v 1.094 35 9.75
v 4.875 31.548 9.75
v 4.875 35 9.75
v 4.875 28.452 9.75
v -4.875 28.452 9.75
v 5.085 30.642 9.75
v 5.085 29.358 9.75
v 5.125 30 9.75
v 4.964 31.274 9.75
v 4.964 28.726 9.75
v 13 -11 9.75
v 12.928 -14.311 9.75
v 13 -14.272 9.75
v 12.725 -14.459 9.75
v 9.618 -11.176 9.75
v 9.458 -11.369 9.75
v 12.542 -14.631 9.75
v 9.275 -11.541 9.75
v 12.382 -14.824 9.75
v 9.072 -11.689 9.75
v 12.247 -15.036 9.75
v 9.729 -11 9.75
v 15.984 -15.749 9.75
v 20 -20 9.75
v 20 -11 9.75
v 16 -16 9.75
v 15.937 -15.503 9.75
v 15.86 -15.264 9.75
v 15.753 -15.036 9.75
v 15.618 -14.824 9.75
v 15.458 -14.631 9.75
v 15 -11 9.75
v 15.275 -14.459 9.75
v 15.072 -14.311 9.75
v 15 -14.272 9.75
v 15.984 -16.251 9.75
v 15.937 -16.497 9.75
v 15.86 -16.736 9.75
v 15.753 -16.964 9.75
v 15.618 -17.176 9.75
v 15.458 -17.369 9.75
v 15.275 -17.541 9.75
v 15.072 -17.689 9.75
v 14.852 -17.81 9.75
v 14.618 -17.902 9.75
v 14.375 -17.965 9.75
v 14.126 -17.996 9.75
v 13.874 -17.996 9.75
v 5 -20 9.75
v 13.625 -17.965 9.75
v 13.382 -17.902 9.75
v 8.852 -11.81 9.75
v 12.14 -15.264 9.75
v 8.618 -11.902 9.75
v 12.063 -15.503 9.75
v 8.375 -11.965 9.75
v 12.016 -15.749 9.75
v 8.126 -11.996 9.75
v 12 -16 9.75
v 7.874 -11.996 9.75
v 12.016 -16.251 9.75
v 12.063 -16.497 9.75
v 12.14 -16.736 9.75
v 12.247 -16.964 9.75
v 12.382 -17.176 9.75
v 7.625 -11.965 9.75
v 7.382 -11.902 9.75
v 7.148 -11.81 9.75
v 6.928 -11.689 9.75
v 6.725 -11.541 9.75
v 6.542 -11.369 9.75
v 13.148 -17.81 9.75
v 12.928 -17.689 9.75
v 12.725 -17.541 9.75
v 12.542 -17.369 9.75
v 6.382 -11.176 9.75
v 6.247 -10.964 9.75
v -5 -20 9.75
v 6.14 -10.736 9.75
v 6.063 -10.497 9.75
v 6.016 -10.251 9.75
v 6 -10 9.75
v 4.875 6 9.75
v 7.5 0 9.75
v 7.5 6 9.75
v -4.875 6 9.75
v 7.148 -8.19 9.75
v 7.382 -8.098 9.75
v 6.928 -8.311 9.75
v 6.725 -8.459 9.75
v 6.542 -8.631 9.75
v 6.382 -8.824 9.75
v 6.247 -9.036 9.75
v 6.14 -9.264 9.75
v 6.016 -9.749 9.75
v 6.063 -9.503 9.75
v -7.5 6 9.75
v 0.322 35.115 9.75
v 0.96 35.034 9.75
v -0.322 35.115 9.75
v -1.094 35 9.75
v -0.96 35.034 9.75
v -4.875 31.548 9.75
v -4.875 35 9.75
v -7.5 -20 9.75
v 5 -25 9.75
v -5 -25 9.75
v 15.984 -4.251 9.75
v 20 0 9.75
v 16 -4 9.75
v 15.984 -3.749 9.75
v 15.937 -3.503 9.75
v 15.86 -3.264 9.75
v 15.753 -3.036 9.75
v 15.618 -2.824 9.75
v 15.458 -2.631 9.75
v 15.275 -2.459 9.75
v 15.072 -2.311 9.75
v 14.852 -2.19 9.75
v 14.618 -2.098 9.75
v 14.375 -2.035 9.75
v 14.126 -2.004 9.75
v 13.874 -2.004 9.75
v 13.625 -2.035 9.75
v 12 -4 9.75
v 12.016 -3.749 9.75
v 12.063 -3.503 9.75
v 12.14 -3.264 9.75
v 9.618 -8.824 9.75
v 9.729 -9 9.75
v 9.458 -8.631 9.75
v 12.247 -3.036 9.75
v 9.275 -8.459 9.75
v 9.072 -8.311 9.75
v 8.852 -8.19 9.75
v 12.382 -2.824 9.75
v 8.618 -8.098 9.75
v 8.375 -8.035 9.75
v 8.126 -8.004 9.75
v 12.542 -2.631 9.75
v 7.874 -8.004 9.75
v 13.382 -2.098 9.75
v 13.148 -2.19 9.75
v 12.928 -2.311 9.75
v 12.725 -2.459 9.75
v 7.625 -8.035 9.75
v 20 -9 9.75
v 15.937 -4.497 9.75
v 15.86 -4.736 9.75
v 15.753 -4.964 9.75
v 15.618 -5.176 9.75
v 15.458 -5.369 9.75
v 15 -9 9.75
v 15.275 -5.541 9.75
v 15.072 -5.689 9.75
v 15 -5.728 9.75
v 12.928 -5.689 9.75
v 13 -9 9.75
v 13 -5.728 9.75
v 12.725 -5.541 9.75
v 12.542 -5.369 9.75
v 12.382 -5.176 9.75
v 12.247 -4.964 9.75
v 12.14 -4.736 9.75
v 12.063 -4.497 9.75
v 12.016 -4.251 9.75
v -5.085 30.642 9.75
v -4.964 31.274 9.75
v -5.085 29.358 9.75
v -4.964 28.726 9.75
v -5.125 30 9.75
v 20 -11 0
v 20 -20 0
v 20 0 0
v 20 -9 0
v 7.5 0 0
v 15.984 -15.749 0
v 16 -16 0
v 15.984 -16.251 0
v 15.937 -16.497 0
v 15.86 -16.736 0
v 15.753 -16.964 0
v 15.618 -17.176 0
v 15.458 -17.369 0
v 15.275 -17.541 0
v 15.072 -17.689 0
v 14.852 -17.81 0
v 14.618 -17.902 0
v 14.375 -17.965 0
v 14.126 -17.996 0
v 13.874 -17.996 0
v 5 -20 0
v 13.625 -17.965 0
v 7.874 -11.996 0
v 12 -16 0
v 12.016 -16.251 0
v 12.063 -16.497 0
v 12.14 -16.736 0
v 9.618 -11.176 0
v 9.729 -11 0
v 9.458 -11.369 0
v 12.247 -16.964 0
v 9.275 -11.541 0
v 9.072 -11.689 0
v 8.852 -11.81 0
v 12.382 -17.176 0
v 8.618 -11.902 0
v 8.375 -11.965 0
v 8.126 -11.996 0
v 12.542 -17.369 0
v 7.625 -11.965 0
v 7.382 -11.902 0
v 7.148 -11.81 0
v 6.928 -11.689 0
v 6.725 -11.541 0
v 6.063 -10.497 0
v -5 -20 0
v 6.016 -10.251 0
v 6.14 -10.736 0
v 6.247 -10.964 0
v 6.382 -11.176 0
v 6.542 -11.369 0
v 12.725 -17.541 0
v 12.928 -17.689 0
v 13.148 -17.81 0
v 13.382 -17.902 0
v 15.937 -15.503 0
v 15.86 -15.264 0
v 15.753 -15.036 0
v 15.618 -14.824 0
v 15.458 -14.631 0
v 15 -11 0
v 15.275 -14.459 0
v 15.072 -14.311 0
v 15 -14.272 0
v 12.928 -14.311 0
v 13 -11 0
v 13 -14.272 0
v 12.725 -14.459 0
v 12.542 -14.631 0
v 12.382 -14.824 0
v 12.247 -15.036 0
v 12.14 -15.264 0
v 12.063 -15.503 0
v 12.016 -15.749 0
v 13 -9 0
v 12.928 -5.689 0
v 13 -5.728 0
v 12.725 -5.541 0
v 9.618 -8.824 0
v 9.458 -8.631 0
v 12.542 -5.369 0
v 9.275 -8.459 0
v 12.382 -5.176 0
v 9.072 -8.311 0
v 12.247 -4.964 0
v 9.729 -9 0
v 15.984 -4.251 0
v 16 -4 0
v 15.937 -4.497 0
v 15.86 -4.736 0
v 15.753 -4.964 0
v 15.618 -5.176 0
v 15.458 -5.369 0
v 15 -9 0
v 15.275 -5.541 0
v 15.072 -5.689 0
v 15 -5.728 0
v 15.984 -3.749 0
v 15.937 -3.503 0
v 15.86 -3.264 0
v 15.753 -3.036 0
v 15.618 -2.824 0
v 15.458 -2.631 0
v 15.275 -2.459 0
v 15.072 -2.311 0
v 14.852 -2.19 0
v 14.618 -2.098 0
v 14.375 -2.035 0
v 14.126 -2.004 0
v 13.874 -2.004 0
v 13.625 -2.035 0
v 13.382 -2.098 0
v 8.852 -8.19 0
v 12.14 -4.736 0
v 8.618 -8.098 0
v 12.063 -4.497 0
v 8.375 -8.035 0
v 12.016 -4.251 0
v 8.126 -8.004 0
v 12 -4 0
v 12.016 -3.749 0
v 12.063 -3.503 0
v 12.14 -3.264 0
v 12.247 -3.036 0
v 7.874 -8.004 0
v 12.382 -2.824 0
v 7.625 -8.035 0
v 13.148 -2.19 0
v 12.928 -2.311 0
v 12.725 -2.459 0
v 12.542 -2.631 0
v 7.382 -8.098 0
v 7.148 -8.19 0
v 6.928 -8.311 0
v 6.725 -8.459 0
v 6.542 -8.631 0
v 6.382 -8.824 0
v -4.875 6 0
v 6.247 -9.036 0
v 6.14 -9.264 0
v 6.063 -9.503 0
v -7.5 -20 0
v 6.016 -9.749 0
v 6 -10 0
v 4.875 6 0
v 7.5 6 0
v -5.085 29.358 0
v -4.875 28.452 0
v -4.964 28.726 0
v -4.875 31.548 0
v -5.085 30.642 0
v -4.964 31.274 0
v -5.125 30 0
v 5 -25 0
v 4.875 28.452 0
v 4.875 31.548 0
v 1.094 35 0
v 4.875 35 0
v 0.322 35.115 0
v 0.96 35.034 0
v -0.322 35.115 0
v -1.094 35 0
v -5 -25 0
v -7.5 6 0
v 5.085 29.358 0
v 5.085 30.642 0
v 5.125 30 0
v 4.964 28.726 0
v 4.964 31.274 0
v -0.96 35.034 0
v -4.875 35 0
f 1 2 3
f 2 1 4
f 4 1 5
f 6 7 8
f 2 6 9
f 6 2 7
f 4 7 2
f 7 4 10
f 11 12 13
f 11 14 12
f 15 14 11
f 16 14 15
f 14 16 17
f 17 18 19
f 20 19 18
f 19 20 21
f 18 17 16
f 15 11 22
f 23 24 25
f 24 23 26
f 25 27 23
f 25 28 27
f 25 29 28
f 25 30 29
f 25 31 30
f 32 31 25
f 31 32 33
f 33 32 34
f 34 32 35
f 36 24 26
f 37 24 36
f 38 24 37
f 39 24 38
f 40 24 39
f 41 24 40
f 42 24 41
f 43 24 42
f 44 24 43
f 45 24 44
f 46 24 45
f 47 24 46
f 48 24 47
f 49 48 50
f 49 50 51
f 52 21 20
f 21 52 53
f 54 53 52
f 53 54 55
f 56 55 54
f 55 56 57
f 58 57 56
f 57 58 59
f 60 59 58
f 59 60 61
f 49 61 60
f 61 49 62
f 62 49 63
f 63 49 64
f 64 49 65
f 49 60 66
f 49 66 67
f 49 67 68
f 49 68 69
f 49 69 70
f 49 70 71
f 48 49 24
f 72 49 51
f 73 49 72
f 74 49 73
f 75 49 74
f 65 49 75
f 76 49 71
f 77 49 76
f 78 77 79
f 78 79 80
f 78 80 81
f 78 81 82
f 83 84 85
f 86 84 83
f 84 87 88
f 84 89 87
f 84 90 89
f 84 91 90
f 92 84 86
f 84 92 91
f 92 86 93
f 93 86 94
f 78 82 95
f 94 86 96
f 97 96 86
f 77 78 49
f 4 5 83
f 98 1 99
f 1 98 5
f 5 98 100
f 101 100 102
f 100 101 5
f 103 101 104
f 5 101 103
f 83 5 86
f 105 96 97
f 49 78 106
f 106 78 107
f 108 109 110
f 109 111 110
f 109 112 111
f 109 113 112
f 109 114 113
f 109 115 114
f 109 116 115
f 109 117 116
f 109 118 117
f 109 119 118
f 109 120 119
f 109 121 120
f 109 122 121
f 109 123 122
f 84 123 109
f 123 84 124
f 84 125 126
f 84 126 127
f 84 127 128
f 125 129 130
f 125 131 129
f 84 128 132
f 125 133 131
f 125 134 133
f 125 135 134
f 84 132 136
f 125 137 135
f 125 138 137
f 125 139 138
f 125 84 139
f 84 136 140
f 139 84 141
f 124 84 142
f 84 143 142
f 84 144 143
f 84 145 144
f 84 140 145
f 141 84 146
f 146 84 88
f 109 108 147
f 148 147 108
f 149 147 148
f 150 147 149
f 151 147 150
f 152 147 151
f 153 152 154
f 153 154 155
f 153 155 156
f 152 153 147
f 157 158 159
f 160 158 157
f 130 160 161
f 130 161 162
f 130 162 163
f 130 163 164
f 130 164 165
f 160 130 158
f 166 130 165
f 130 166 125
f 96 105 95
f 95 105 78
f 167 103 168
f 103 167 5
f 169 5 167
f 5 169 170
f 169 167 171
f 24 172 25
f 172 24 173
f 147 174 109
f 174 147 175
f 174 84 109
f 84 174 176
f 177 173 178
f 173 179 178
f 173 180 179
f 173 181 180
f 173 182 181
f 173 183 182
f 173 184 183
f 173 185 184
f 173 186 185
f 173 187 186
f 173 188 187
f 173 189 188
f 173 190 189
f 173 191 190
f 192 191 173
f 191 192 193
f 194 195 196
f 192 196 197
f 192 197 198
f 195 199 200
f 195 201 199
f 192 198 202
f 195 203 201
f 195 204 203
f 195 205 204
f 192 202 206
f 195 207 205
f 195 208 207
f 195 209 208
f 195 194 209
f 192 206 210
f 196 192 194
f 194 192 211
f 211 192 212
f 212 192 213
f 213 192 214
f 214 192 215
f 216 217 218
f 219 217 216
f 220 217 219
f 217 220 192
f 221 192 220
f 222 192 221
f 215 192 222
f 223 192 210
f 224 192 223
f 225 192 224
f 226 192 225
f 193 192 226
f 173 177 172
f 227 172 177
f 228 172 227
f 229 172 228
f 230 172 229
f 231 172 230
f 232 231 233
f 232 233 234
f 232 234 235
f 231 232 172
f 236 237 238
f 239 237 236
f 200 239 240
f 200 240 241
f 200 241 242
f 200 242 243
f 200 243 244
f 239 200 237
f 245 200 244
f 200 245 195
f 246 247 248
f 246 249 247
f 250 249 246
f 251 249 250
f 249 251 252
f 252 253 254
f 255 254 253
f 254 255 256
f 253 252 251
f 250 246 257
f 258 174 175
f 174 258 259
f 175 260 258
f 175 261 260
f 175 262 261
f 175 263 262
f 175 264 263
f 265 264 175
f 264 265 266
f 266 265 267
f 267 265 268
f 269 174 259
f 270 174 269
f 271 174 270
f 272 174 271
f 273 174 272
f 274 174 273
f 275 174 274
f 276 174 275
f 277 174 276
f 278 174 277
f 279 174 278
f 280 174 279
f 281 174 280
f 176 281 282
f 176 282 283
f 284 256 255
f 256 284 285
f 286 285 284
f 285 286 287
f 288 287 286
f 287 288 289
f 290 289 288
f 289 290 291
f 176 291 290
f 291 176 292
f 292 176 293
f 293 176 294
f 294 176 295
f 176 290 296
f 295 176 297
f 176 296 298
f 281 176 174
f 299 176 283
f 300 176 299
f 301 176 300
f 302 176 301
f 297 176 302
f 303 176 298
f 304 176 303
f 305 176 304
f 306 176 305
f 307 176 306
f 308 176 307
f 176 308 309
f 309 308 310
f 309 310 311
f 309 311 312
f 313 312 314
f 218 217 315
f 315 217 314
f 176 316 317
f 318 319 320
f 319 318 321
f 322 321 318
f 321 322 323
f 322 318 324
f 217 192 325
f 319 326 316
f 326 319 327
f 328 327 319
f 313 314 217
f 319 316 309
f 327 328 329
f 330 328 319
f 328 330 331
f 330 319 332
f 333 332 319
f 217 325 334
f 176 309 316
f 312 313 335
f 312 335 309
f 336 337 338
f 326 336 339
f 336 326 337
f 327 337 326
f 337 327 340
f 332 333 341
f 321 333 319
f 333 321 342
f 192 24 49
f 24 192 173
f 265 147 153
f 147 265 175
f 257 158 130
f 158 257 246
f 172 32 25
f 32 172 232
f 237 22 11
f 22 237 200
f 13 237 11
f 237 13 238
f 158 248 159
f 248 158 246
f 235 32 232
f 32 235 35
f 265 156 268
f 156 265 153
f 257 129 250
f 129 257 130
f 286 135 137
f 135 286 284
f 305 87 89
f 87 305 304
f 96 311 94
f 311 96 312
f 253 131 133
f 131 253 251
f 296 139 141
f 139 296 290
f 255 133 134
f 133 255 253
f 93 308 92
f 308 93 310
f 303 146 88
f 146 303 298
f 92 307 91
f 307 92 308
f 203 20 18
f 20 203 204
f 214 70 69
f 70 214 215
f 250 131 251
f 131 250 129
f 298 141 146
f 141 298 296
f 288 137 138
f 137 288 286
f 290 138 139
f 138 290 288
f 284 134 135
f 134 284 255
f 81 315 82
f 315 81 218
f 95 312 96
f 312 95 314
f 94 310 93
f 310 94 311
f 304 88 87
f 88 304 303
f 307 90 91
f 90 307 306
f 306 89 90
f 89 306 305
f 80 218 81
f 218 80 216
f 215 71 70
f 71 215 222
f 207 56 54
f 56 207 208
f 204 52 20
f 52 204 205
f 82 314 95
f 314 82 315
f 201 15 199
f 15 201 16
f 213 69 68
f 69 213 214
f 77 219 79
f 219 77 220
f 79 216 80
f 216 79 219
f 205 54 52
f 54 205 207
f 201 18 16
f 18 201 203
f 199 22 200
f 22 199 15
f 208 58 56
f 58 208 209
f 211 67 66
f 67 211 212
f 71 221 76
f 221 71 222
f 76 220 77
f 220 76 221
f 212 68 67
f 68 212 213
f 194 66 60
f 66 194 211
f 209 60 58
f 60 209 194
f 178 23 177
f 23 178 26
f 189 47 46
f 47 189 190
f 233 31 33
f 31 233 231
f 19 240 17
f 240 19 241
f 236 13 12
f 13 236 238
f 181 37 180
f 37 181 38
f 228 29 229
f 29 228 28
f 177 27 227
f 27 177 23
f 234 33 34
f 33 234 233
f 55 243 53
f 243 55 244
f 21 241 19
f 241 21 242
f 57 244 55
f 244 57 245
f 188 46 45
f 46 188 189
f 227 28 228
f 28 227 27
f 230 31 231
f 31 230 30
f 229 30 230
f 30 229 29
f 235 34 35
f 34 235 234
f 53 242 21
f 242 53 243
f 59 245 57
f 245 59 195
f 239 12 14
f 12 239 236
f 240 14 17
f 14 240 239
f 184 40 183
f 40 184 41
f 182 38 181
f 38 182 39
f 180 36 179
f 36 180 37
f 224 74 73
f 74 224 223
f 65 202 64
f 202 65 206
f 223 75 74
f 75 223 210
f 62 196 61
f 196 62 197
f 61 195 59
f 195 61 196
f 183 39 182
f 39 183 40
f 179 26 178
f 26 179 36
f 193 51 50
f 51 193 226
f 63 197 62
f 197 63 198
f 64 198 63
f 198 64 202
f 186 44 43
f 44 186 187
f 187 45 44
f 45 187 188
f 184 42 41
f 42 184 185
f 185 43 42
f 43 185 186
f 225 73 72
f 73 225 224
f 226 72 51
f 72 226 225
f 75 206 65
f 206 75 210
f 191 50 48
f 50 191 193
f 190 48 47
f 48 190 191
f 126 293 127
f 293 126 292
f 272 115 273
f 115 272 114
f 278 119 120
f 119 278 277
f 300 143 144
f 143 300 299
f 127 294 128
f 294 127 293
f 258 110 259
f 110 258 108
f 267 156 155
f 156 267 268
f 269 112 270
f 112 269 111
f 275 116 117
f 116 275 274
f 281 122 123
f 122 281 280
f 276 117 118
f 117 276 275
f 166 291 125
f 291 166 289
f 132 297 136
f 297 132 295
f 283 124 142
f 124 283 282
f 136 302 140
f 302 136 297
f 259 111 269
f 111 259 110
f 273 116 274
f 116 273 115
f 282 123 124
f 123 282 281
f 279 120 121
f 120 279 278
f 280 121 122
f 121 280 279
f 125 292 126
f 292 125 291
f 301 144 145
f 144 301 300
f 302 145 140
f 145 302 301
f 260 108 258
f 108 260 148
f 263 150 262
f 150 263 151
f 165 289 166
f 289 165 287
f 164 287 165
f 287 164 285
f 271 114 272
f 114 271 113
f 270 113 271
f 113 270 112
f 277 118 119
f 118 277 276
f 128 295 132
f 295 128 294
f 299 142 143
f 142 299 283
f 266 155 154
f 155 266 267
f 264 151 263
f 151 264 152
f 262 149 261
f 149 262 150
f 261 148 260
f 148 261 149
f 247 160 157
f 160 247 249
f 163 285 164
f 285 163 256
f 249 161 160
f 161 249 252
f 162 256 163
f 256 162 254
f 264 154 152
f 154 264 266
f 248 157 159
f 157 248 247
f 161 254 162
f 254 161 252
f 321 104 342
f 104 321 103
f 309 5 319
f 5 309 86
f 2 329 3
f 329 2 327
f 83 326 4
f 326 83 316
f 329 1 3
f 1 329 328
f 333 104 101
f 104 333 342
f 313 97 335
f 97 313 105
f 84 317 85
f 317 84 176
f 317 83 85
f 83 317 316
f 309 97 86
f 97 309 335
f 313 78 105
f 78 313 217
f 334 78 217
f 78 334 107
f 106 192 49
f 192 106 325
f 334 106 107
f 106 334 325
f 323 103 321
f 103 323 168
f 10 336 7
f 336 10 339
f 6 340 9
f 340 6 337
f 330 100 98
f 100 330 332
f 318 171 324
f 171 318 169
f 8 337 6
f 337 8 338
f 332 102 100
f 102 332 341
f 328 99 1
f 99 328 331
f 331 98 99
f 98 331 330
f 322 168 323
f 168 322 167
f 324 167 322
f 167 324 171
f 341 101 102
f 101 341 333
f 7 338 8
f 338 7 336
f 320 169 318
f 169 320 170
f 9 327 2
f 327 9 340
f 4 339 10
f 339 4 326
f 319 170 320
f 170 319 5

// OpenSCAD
// old key handle insert (need 2 items)

// clearance
tol = 0.25;

// innere insert parameters
iih = 10;
iiw = 10;
iil = 20;

// outer insert parameters
iod = 15;
ioh = iih;
irh = iih;
irw = 15;
irl = 6;

real_h = iih - tol;

translate([-(iiw - tol) / 2, 0, 0]) cube([iiw - tol, iil + irw, real_h]);
translate([-irw / 2, -irl, 0]) cube([irw, irl * 2, real_h]);

translate([-7.5, -20, 0]) cube([10, 20, real_h]);
translate([-5, -25, 0]) cube([10, 25, real_h]);

translate([-5, -20, 0]) difference() {
	cube([25, 20, real_h]);
	translate([13, 9, 0]) cube([12, 2, real_h]);
	translate([18, 4, 0]) cube([2, 12, real_h]);

	translate([13, 10, 0]) cylinder(d = 4, h = real_h, $fn = 50);
	translate([19, 4, 0]) cylinder(d = 4, h = real_h, $fn = 50);
	translate([19, 16, 0]) cylinder(d = 4, h = real_h, $fn = 50);
}

translate([0, iil + irw - iih / 2, 0]) cylinder(d = iiw + tol, h = real_h, $fn = 50);
